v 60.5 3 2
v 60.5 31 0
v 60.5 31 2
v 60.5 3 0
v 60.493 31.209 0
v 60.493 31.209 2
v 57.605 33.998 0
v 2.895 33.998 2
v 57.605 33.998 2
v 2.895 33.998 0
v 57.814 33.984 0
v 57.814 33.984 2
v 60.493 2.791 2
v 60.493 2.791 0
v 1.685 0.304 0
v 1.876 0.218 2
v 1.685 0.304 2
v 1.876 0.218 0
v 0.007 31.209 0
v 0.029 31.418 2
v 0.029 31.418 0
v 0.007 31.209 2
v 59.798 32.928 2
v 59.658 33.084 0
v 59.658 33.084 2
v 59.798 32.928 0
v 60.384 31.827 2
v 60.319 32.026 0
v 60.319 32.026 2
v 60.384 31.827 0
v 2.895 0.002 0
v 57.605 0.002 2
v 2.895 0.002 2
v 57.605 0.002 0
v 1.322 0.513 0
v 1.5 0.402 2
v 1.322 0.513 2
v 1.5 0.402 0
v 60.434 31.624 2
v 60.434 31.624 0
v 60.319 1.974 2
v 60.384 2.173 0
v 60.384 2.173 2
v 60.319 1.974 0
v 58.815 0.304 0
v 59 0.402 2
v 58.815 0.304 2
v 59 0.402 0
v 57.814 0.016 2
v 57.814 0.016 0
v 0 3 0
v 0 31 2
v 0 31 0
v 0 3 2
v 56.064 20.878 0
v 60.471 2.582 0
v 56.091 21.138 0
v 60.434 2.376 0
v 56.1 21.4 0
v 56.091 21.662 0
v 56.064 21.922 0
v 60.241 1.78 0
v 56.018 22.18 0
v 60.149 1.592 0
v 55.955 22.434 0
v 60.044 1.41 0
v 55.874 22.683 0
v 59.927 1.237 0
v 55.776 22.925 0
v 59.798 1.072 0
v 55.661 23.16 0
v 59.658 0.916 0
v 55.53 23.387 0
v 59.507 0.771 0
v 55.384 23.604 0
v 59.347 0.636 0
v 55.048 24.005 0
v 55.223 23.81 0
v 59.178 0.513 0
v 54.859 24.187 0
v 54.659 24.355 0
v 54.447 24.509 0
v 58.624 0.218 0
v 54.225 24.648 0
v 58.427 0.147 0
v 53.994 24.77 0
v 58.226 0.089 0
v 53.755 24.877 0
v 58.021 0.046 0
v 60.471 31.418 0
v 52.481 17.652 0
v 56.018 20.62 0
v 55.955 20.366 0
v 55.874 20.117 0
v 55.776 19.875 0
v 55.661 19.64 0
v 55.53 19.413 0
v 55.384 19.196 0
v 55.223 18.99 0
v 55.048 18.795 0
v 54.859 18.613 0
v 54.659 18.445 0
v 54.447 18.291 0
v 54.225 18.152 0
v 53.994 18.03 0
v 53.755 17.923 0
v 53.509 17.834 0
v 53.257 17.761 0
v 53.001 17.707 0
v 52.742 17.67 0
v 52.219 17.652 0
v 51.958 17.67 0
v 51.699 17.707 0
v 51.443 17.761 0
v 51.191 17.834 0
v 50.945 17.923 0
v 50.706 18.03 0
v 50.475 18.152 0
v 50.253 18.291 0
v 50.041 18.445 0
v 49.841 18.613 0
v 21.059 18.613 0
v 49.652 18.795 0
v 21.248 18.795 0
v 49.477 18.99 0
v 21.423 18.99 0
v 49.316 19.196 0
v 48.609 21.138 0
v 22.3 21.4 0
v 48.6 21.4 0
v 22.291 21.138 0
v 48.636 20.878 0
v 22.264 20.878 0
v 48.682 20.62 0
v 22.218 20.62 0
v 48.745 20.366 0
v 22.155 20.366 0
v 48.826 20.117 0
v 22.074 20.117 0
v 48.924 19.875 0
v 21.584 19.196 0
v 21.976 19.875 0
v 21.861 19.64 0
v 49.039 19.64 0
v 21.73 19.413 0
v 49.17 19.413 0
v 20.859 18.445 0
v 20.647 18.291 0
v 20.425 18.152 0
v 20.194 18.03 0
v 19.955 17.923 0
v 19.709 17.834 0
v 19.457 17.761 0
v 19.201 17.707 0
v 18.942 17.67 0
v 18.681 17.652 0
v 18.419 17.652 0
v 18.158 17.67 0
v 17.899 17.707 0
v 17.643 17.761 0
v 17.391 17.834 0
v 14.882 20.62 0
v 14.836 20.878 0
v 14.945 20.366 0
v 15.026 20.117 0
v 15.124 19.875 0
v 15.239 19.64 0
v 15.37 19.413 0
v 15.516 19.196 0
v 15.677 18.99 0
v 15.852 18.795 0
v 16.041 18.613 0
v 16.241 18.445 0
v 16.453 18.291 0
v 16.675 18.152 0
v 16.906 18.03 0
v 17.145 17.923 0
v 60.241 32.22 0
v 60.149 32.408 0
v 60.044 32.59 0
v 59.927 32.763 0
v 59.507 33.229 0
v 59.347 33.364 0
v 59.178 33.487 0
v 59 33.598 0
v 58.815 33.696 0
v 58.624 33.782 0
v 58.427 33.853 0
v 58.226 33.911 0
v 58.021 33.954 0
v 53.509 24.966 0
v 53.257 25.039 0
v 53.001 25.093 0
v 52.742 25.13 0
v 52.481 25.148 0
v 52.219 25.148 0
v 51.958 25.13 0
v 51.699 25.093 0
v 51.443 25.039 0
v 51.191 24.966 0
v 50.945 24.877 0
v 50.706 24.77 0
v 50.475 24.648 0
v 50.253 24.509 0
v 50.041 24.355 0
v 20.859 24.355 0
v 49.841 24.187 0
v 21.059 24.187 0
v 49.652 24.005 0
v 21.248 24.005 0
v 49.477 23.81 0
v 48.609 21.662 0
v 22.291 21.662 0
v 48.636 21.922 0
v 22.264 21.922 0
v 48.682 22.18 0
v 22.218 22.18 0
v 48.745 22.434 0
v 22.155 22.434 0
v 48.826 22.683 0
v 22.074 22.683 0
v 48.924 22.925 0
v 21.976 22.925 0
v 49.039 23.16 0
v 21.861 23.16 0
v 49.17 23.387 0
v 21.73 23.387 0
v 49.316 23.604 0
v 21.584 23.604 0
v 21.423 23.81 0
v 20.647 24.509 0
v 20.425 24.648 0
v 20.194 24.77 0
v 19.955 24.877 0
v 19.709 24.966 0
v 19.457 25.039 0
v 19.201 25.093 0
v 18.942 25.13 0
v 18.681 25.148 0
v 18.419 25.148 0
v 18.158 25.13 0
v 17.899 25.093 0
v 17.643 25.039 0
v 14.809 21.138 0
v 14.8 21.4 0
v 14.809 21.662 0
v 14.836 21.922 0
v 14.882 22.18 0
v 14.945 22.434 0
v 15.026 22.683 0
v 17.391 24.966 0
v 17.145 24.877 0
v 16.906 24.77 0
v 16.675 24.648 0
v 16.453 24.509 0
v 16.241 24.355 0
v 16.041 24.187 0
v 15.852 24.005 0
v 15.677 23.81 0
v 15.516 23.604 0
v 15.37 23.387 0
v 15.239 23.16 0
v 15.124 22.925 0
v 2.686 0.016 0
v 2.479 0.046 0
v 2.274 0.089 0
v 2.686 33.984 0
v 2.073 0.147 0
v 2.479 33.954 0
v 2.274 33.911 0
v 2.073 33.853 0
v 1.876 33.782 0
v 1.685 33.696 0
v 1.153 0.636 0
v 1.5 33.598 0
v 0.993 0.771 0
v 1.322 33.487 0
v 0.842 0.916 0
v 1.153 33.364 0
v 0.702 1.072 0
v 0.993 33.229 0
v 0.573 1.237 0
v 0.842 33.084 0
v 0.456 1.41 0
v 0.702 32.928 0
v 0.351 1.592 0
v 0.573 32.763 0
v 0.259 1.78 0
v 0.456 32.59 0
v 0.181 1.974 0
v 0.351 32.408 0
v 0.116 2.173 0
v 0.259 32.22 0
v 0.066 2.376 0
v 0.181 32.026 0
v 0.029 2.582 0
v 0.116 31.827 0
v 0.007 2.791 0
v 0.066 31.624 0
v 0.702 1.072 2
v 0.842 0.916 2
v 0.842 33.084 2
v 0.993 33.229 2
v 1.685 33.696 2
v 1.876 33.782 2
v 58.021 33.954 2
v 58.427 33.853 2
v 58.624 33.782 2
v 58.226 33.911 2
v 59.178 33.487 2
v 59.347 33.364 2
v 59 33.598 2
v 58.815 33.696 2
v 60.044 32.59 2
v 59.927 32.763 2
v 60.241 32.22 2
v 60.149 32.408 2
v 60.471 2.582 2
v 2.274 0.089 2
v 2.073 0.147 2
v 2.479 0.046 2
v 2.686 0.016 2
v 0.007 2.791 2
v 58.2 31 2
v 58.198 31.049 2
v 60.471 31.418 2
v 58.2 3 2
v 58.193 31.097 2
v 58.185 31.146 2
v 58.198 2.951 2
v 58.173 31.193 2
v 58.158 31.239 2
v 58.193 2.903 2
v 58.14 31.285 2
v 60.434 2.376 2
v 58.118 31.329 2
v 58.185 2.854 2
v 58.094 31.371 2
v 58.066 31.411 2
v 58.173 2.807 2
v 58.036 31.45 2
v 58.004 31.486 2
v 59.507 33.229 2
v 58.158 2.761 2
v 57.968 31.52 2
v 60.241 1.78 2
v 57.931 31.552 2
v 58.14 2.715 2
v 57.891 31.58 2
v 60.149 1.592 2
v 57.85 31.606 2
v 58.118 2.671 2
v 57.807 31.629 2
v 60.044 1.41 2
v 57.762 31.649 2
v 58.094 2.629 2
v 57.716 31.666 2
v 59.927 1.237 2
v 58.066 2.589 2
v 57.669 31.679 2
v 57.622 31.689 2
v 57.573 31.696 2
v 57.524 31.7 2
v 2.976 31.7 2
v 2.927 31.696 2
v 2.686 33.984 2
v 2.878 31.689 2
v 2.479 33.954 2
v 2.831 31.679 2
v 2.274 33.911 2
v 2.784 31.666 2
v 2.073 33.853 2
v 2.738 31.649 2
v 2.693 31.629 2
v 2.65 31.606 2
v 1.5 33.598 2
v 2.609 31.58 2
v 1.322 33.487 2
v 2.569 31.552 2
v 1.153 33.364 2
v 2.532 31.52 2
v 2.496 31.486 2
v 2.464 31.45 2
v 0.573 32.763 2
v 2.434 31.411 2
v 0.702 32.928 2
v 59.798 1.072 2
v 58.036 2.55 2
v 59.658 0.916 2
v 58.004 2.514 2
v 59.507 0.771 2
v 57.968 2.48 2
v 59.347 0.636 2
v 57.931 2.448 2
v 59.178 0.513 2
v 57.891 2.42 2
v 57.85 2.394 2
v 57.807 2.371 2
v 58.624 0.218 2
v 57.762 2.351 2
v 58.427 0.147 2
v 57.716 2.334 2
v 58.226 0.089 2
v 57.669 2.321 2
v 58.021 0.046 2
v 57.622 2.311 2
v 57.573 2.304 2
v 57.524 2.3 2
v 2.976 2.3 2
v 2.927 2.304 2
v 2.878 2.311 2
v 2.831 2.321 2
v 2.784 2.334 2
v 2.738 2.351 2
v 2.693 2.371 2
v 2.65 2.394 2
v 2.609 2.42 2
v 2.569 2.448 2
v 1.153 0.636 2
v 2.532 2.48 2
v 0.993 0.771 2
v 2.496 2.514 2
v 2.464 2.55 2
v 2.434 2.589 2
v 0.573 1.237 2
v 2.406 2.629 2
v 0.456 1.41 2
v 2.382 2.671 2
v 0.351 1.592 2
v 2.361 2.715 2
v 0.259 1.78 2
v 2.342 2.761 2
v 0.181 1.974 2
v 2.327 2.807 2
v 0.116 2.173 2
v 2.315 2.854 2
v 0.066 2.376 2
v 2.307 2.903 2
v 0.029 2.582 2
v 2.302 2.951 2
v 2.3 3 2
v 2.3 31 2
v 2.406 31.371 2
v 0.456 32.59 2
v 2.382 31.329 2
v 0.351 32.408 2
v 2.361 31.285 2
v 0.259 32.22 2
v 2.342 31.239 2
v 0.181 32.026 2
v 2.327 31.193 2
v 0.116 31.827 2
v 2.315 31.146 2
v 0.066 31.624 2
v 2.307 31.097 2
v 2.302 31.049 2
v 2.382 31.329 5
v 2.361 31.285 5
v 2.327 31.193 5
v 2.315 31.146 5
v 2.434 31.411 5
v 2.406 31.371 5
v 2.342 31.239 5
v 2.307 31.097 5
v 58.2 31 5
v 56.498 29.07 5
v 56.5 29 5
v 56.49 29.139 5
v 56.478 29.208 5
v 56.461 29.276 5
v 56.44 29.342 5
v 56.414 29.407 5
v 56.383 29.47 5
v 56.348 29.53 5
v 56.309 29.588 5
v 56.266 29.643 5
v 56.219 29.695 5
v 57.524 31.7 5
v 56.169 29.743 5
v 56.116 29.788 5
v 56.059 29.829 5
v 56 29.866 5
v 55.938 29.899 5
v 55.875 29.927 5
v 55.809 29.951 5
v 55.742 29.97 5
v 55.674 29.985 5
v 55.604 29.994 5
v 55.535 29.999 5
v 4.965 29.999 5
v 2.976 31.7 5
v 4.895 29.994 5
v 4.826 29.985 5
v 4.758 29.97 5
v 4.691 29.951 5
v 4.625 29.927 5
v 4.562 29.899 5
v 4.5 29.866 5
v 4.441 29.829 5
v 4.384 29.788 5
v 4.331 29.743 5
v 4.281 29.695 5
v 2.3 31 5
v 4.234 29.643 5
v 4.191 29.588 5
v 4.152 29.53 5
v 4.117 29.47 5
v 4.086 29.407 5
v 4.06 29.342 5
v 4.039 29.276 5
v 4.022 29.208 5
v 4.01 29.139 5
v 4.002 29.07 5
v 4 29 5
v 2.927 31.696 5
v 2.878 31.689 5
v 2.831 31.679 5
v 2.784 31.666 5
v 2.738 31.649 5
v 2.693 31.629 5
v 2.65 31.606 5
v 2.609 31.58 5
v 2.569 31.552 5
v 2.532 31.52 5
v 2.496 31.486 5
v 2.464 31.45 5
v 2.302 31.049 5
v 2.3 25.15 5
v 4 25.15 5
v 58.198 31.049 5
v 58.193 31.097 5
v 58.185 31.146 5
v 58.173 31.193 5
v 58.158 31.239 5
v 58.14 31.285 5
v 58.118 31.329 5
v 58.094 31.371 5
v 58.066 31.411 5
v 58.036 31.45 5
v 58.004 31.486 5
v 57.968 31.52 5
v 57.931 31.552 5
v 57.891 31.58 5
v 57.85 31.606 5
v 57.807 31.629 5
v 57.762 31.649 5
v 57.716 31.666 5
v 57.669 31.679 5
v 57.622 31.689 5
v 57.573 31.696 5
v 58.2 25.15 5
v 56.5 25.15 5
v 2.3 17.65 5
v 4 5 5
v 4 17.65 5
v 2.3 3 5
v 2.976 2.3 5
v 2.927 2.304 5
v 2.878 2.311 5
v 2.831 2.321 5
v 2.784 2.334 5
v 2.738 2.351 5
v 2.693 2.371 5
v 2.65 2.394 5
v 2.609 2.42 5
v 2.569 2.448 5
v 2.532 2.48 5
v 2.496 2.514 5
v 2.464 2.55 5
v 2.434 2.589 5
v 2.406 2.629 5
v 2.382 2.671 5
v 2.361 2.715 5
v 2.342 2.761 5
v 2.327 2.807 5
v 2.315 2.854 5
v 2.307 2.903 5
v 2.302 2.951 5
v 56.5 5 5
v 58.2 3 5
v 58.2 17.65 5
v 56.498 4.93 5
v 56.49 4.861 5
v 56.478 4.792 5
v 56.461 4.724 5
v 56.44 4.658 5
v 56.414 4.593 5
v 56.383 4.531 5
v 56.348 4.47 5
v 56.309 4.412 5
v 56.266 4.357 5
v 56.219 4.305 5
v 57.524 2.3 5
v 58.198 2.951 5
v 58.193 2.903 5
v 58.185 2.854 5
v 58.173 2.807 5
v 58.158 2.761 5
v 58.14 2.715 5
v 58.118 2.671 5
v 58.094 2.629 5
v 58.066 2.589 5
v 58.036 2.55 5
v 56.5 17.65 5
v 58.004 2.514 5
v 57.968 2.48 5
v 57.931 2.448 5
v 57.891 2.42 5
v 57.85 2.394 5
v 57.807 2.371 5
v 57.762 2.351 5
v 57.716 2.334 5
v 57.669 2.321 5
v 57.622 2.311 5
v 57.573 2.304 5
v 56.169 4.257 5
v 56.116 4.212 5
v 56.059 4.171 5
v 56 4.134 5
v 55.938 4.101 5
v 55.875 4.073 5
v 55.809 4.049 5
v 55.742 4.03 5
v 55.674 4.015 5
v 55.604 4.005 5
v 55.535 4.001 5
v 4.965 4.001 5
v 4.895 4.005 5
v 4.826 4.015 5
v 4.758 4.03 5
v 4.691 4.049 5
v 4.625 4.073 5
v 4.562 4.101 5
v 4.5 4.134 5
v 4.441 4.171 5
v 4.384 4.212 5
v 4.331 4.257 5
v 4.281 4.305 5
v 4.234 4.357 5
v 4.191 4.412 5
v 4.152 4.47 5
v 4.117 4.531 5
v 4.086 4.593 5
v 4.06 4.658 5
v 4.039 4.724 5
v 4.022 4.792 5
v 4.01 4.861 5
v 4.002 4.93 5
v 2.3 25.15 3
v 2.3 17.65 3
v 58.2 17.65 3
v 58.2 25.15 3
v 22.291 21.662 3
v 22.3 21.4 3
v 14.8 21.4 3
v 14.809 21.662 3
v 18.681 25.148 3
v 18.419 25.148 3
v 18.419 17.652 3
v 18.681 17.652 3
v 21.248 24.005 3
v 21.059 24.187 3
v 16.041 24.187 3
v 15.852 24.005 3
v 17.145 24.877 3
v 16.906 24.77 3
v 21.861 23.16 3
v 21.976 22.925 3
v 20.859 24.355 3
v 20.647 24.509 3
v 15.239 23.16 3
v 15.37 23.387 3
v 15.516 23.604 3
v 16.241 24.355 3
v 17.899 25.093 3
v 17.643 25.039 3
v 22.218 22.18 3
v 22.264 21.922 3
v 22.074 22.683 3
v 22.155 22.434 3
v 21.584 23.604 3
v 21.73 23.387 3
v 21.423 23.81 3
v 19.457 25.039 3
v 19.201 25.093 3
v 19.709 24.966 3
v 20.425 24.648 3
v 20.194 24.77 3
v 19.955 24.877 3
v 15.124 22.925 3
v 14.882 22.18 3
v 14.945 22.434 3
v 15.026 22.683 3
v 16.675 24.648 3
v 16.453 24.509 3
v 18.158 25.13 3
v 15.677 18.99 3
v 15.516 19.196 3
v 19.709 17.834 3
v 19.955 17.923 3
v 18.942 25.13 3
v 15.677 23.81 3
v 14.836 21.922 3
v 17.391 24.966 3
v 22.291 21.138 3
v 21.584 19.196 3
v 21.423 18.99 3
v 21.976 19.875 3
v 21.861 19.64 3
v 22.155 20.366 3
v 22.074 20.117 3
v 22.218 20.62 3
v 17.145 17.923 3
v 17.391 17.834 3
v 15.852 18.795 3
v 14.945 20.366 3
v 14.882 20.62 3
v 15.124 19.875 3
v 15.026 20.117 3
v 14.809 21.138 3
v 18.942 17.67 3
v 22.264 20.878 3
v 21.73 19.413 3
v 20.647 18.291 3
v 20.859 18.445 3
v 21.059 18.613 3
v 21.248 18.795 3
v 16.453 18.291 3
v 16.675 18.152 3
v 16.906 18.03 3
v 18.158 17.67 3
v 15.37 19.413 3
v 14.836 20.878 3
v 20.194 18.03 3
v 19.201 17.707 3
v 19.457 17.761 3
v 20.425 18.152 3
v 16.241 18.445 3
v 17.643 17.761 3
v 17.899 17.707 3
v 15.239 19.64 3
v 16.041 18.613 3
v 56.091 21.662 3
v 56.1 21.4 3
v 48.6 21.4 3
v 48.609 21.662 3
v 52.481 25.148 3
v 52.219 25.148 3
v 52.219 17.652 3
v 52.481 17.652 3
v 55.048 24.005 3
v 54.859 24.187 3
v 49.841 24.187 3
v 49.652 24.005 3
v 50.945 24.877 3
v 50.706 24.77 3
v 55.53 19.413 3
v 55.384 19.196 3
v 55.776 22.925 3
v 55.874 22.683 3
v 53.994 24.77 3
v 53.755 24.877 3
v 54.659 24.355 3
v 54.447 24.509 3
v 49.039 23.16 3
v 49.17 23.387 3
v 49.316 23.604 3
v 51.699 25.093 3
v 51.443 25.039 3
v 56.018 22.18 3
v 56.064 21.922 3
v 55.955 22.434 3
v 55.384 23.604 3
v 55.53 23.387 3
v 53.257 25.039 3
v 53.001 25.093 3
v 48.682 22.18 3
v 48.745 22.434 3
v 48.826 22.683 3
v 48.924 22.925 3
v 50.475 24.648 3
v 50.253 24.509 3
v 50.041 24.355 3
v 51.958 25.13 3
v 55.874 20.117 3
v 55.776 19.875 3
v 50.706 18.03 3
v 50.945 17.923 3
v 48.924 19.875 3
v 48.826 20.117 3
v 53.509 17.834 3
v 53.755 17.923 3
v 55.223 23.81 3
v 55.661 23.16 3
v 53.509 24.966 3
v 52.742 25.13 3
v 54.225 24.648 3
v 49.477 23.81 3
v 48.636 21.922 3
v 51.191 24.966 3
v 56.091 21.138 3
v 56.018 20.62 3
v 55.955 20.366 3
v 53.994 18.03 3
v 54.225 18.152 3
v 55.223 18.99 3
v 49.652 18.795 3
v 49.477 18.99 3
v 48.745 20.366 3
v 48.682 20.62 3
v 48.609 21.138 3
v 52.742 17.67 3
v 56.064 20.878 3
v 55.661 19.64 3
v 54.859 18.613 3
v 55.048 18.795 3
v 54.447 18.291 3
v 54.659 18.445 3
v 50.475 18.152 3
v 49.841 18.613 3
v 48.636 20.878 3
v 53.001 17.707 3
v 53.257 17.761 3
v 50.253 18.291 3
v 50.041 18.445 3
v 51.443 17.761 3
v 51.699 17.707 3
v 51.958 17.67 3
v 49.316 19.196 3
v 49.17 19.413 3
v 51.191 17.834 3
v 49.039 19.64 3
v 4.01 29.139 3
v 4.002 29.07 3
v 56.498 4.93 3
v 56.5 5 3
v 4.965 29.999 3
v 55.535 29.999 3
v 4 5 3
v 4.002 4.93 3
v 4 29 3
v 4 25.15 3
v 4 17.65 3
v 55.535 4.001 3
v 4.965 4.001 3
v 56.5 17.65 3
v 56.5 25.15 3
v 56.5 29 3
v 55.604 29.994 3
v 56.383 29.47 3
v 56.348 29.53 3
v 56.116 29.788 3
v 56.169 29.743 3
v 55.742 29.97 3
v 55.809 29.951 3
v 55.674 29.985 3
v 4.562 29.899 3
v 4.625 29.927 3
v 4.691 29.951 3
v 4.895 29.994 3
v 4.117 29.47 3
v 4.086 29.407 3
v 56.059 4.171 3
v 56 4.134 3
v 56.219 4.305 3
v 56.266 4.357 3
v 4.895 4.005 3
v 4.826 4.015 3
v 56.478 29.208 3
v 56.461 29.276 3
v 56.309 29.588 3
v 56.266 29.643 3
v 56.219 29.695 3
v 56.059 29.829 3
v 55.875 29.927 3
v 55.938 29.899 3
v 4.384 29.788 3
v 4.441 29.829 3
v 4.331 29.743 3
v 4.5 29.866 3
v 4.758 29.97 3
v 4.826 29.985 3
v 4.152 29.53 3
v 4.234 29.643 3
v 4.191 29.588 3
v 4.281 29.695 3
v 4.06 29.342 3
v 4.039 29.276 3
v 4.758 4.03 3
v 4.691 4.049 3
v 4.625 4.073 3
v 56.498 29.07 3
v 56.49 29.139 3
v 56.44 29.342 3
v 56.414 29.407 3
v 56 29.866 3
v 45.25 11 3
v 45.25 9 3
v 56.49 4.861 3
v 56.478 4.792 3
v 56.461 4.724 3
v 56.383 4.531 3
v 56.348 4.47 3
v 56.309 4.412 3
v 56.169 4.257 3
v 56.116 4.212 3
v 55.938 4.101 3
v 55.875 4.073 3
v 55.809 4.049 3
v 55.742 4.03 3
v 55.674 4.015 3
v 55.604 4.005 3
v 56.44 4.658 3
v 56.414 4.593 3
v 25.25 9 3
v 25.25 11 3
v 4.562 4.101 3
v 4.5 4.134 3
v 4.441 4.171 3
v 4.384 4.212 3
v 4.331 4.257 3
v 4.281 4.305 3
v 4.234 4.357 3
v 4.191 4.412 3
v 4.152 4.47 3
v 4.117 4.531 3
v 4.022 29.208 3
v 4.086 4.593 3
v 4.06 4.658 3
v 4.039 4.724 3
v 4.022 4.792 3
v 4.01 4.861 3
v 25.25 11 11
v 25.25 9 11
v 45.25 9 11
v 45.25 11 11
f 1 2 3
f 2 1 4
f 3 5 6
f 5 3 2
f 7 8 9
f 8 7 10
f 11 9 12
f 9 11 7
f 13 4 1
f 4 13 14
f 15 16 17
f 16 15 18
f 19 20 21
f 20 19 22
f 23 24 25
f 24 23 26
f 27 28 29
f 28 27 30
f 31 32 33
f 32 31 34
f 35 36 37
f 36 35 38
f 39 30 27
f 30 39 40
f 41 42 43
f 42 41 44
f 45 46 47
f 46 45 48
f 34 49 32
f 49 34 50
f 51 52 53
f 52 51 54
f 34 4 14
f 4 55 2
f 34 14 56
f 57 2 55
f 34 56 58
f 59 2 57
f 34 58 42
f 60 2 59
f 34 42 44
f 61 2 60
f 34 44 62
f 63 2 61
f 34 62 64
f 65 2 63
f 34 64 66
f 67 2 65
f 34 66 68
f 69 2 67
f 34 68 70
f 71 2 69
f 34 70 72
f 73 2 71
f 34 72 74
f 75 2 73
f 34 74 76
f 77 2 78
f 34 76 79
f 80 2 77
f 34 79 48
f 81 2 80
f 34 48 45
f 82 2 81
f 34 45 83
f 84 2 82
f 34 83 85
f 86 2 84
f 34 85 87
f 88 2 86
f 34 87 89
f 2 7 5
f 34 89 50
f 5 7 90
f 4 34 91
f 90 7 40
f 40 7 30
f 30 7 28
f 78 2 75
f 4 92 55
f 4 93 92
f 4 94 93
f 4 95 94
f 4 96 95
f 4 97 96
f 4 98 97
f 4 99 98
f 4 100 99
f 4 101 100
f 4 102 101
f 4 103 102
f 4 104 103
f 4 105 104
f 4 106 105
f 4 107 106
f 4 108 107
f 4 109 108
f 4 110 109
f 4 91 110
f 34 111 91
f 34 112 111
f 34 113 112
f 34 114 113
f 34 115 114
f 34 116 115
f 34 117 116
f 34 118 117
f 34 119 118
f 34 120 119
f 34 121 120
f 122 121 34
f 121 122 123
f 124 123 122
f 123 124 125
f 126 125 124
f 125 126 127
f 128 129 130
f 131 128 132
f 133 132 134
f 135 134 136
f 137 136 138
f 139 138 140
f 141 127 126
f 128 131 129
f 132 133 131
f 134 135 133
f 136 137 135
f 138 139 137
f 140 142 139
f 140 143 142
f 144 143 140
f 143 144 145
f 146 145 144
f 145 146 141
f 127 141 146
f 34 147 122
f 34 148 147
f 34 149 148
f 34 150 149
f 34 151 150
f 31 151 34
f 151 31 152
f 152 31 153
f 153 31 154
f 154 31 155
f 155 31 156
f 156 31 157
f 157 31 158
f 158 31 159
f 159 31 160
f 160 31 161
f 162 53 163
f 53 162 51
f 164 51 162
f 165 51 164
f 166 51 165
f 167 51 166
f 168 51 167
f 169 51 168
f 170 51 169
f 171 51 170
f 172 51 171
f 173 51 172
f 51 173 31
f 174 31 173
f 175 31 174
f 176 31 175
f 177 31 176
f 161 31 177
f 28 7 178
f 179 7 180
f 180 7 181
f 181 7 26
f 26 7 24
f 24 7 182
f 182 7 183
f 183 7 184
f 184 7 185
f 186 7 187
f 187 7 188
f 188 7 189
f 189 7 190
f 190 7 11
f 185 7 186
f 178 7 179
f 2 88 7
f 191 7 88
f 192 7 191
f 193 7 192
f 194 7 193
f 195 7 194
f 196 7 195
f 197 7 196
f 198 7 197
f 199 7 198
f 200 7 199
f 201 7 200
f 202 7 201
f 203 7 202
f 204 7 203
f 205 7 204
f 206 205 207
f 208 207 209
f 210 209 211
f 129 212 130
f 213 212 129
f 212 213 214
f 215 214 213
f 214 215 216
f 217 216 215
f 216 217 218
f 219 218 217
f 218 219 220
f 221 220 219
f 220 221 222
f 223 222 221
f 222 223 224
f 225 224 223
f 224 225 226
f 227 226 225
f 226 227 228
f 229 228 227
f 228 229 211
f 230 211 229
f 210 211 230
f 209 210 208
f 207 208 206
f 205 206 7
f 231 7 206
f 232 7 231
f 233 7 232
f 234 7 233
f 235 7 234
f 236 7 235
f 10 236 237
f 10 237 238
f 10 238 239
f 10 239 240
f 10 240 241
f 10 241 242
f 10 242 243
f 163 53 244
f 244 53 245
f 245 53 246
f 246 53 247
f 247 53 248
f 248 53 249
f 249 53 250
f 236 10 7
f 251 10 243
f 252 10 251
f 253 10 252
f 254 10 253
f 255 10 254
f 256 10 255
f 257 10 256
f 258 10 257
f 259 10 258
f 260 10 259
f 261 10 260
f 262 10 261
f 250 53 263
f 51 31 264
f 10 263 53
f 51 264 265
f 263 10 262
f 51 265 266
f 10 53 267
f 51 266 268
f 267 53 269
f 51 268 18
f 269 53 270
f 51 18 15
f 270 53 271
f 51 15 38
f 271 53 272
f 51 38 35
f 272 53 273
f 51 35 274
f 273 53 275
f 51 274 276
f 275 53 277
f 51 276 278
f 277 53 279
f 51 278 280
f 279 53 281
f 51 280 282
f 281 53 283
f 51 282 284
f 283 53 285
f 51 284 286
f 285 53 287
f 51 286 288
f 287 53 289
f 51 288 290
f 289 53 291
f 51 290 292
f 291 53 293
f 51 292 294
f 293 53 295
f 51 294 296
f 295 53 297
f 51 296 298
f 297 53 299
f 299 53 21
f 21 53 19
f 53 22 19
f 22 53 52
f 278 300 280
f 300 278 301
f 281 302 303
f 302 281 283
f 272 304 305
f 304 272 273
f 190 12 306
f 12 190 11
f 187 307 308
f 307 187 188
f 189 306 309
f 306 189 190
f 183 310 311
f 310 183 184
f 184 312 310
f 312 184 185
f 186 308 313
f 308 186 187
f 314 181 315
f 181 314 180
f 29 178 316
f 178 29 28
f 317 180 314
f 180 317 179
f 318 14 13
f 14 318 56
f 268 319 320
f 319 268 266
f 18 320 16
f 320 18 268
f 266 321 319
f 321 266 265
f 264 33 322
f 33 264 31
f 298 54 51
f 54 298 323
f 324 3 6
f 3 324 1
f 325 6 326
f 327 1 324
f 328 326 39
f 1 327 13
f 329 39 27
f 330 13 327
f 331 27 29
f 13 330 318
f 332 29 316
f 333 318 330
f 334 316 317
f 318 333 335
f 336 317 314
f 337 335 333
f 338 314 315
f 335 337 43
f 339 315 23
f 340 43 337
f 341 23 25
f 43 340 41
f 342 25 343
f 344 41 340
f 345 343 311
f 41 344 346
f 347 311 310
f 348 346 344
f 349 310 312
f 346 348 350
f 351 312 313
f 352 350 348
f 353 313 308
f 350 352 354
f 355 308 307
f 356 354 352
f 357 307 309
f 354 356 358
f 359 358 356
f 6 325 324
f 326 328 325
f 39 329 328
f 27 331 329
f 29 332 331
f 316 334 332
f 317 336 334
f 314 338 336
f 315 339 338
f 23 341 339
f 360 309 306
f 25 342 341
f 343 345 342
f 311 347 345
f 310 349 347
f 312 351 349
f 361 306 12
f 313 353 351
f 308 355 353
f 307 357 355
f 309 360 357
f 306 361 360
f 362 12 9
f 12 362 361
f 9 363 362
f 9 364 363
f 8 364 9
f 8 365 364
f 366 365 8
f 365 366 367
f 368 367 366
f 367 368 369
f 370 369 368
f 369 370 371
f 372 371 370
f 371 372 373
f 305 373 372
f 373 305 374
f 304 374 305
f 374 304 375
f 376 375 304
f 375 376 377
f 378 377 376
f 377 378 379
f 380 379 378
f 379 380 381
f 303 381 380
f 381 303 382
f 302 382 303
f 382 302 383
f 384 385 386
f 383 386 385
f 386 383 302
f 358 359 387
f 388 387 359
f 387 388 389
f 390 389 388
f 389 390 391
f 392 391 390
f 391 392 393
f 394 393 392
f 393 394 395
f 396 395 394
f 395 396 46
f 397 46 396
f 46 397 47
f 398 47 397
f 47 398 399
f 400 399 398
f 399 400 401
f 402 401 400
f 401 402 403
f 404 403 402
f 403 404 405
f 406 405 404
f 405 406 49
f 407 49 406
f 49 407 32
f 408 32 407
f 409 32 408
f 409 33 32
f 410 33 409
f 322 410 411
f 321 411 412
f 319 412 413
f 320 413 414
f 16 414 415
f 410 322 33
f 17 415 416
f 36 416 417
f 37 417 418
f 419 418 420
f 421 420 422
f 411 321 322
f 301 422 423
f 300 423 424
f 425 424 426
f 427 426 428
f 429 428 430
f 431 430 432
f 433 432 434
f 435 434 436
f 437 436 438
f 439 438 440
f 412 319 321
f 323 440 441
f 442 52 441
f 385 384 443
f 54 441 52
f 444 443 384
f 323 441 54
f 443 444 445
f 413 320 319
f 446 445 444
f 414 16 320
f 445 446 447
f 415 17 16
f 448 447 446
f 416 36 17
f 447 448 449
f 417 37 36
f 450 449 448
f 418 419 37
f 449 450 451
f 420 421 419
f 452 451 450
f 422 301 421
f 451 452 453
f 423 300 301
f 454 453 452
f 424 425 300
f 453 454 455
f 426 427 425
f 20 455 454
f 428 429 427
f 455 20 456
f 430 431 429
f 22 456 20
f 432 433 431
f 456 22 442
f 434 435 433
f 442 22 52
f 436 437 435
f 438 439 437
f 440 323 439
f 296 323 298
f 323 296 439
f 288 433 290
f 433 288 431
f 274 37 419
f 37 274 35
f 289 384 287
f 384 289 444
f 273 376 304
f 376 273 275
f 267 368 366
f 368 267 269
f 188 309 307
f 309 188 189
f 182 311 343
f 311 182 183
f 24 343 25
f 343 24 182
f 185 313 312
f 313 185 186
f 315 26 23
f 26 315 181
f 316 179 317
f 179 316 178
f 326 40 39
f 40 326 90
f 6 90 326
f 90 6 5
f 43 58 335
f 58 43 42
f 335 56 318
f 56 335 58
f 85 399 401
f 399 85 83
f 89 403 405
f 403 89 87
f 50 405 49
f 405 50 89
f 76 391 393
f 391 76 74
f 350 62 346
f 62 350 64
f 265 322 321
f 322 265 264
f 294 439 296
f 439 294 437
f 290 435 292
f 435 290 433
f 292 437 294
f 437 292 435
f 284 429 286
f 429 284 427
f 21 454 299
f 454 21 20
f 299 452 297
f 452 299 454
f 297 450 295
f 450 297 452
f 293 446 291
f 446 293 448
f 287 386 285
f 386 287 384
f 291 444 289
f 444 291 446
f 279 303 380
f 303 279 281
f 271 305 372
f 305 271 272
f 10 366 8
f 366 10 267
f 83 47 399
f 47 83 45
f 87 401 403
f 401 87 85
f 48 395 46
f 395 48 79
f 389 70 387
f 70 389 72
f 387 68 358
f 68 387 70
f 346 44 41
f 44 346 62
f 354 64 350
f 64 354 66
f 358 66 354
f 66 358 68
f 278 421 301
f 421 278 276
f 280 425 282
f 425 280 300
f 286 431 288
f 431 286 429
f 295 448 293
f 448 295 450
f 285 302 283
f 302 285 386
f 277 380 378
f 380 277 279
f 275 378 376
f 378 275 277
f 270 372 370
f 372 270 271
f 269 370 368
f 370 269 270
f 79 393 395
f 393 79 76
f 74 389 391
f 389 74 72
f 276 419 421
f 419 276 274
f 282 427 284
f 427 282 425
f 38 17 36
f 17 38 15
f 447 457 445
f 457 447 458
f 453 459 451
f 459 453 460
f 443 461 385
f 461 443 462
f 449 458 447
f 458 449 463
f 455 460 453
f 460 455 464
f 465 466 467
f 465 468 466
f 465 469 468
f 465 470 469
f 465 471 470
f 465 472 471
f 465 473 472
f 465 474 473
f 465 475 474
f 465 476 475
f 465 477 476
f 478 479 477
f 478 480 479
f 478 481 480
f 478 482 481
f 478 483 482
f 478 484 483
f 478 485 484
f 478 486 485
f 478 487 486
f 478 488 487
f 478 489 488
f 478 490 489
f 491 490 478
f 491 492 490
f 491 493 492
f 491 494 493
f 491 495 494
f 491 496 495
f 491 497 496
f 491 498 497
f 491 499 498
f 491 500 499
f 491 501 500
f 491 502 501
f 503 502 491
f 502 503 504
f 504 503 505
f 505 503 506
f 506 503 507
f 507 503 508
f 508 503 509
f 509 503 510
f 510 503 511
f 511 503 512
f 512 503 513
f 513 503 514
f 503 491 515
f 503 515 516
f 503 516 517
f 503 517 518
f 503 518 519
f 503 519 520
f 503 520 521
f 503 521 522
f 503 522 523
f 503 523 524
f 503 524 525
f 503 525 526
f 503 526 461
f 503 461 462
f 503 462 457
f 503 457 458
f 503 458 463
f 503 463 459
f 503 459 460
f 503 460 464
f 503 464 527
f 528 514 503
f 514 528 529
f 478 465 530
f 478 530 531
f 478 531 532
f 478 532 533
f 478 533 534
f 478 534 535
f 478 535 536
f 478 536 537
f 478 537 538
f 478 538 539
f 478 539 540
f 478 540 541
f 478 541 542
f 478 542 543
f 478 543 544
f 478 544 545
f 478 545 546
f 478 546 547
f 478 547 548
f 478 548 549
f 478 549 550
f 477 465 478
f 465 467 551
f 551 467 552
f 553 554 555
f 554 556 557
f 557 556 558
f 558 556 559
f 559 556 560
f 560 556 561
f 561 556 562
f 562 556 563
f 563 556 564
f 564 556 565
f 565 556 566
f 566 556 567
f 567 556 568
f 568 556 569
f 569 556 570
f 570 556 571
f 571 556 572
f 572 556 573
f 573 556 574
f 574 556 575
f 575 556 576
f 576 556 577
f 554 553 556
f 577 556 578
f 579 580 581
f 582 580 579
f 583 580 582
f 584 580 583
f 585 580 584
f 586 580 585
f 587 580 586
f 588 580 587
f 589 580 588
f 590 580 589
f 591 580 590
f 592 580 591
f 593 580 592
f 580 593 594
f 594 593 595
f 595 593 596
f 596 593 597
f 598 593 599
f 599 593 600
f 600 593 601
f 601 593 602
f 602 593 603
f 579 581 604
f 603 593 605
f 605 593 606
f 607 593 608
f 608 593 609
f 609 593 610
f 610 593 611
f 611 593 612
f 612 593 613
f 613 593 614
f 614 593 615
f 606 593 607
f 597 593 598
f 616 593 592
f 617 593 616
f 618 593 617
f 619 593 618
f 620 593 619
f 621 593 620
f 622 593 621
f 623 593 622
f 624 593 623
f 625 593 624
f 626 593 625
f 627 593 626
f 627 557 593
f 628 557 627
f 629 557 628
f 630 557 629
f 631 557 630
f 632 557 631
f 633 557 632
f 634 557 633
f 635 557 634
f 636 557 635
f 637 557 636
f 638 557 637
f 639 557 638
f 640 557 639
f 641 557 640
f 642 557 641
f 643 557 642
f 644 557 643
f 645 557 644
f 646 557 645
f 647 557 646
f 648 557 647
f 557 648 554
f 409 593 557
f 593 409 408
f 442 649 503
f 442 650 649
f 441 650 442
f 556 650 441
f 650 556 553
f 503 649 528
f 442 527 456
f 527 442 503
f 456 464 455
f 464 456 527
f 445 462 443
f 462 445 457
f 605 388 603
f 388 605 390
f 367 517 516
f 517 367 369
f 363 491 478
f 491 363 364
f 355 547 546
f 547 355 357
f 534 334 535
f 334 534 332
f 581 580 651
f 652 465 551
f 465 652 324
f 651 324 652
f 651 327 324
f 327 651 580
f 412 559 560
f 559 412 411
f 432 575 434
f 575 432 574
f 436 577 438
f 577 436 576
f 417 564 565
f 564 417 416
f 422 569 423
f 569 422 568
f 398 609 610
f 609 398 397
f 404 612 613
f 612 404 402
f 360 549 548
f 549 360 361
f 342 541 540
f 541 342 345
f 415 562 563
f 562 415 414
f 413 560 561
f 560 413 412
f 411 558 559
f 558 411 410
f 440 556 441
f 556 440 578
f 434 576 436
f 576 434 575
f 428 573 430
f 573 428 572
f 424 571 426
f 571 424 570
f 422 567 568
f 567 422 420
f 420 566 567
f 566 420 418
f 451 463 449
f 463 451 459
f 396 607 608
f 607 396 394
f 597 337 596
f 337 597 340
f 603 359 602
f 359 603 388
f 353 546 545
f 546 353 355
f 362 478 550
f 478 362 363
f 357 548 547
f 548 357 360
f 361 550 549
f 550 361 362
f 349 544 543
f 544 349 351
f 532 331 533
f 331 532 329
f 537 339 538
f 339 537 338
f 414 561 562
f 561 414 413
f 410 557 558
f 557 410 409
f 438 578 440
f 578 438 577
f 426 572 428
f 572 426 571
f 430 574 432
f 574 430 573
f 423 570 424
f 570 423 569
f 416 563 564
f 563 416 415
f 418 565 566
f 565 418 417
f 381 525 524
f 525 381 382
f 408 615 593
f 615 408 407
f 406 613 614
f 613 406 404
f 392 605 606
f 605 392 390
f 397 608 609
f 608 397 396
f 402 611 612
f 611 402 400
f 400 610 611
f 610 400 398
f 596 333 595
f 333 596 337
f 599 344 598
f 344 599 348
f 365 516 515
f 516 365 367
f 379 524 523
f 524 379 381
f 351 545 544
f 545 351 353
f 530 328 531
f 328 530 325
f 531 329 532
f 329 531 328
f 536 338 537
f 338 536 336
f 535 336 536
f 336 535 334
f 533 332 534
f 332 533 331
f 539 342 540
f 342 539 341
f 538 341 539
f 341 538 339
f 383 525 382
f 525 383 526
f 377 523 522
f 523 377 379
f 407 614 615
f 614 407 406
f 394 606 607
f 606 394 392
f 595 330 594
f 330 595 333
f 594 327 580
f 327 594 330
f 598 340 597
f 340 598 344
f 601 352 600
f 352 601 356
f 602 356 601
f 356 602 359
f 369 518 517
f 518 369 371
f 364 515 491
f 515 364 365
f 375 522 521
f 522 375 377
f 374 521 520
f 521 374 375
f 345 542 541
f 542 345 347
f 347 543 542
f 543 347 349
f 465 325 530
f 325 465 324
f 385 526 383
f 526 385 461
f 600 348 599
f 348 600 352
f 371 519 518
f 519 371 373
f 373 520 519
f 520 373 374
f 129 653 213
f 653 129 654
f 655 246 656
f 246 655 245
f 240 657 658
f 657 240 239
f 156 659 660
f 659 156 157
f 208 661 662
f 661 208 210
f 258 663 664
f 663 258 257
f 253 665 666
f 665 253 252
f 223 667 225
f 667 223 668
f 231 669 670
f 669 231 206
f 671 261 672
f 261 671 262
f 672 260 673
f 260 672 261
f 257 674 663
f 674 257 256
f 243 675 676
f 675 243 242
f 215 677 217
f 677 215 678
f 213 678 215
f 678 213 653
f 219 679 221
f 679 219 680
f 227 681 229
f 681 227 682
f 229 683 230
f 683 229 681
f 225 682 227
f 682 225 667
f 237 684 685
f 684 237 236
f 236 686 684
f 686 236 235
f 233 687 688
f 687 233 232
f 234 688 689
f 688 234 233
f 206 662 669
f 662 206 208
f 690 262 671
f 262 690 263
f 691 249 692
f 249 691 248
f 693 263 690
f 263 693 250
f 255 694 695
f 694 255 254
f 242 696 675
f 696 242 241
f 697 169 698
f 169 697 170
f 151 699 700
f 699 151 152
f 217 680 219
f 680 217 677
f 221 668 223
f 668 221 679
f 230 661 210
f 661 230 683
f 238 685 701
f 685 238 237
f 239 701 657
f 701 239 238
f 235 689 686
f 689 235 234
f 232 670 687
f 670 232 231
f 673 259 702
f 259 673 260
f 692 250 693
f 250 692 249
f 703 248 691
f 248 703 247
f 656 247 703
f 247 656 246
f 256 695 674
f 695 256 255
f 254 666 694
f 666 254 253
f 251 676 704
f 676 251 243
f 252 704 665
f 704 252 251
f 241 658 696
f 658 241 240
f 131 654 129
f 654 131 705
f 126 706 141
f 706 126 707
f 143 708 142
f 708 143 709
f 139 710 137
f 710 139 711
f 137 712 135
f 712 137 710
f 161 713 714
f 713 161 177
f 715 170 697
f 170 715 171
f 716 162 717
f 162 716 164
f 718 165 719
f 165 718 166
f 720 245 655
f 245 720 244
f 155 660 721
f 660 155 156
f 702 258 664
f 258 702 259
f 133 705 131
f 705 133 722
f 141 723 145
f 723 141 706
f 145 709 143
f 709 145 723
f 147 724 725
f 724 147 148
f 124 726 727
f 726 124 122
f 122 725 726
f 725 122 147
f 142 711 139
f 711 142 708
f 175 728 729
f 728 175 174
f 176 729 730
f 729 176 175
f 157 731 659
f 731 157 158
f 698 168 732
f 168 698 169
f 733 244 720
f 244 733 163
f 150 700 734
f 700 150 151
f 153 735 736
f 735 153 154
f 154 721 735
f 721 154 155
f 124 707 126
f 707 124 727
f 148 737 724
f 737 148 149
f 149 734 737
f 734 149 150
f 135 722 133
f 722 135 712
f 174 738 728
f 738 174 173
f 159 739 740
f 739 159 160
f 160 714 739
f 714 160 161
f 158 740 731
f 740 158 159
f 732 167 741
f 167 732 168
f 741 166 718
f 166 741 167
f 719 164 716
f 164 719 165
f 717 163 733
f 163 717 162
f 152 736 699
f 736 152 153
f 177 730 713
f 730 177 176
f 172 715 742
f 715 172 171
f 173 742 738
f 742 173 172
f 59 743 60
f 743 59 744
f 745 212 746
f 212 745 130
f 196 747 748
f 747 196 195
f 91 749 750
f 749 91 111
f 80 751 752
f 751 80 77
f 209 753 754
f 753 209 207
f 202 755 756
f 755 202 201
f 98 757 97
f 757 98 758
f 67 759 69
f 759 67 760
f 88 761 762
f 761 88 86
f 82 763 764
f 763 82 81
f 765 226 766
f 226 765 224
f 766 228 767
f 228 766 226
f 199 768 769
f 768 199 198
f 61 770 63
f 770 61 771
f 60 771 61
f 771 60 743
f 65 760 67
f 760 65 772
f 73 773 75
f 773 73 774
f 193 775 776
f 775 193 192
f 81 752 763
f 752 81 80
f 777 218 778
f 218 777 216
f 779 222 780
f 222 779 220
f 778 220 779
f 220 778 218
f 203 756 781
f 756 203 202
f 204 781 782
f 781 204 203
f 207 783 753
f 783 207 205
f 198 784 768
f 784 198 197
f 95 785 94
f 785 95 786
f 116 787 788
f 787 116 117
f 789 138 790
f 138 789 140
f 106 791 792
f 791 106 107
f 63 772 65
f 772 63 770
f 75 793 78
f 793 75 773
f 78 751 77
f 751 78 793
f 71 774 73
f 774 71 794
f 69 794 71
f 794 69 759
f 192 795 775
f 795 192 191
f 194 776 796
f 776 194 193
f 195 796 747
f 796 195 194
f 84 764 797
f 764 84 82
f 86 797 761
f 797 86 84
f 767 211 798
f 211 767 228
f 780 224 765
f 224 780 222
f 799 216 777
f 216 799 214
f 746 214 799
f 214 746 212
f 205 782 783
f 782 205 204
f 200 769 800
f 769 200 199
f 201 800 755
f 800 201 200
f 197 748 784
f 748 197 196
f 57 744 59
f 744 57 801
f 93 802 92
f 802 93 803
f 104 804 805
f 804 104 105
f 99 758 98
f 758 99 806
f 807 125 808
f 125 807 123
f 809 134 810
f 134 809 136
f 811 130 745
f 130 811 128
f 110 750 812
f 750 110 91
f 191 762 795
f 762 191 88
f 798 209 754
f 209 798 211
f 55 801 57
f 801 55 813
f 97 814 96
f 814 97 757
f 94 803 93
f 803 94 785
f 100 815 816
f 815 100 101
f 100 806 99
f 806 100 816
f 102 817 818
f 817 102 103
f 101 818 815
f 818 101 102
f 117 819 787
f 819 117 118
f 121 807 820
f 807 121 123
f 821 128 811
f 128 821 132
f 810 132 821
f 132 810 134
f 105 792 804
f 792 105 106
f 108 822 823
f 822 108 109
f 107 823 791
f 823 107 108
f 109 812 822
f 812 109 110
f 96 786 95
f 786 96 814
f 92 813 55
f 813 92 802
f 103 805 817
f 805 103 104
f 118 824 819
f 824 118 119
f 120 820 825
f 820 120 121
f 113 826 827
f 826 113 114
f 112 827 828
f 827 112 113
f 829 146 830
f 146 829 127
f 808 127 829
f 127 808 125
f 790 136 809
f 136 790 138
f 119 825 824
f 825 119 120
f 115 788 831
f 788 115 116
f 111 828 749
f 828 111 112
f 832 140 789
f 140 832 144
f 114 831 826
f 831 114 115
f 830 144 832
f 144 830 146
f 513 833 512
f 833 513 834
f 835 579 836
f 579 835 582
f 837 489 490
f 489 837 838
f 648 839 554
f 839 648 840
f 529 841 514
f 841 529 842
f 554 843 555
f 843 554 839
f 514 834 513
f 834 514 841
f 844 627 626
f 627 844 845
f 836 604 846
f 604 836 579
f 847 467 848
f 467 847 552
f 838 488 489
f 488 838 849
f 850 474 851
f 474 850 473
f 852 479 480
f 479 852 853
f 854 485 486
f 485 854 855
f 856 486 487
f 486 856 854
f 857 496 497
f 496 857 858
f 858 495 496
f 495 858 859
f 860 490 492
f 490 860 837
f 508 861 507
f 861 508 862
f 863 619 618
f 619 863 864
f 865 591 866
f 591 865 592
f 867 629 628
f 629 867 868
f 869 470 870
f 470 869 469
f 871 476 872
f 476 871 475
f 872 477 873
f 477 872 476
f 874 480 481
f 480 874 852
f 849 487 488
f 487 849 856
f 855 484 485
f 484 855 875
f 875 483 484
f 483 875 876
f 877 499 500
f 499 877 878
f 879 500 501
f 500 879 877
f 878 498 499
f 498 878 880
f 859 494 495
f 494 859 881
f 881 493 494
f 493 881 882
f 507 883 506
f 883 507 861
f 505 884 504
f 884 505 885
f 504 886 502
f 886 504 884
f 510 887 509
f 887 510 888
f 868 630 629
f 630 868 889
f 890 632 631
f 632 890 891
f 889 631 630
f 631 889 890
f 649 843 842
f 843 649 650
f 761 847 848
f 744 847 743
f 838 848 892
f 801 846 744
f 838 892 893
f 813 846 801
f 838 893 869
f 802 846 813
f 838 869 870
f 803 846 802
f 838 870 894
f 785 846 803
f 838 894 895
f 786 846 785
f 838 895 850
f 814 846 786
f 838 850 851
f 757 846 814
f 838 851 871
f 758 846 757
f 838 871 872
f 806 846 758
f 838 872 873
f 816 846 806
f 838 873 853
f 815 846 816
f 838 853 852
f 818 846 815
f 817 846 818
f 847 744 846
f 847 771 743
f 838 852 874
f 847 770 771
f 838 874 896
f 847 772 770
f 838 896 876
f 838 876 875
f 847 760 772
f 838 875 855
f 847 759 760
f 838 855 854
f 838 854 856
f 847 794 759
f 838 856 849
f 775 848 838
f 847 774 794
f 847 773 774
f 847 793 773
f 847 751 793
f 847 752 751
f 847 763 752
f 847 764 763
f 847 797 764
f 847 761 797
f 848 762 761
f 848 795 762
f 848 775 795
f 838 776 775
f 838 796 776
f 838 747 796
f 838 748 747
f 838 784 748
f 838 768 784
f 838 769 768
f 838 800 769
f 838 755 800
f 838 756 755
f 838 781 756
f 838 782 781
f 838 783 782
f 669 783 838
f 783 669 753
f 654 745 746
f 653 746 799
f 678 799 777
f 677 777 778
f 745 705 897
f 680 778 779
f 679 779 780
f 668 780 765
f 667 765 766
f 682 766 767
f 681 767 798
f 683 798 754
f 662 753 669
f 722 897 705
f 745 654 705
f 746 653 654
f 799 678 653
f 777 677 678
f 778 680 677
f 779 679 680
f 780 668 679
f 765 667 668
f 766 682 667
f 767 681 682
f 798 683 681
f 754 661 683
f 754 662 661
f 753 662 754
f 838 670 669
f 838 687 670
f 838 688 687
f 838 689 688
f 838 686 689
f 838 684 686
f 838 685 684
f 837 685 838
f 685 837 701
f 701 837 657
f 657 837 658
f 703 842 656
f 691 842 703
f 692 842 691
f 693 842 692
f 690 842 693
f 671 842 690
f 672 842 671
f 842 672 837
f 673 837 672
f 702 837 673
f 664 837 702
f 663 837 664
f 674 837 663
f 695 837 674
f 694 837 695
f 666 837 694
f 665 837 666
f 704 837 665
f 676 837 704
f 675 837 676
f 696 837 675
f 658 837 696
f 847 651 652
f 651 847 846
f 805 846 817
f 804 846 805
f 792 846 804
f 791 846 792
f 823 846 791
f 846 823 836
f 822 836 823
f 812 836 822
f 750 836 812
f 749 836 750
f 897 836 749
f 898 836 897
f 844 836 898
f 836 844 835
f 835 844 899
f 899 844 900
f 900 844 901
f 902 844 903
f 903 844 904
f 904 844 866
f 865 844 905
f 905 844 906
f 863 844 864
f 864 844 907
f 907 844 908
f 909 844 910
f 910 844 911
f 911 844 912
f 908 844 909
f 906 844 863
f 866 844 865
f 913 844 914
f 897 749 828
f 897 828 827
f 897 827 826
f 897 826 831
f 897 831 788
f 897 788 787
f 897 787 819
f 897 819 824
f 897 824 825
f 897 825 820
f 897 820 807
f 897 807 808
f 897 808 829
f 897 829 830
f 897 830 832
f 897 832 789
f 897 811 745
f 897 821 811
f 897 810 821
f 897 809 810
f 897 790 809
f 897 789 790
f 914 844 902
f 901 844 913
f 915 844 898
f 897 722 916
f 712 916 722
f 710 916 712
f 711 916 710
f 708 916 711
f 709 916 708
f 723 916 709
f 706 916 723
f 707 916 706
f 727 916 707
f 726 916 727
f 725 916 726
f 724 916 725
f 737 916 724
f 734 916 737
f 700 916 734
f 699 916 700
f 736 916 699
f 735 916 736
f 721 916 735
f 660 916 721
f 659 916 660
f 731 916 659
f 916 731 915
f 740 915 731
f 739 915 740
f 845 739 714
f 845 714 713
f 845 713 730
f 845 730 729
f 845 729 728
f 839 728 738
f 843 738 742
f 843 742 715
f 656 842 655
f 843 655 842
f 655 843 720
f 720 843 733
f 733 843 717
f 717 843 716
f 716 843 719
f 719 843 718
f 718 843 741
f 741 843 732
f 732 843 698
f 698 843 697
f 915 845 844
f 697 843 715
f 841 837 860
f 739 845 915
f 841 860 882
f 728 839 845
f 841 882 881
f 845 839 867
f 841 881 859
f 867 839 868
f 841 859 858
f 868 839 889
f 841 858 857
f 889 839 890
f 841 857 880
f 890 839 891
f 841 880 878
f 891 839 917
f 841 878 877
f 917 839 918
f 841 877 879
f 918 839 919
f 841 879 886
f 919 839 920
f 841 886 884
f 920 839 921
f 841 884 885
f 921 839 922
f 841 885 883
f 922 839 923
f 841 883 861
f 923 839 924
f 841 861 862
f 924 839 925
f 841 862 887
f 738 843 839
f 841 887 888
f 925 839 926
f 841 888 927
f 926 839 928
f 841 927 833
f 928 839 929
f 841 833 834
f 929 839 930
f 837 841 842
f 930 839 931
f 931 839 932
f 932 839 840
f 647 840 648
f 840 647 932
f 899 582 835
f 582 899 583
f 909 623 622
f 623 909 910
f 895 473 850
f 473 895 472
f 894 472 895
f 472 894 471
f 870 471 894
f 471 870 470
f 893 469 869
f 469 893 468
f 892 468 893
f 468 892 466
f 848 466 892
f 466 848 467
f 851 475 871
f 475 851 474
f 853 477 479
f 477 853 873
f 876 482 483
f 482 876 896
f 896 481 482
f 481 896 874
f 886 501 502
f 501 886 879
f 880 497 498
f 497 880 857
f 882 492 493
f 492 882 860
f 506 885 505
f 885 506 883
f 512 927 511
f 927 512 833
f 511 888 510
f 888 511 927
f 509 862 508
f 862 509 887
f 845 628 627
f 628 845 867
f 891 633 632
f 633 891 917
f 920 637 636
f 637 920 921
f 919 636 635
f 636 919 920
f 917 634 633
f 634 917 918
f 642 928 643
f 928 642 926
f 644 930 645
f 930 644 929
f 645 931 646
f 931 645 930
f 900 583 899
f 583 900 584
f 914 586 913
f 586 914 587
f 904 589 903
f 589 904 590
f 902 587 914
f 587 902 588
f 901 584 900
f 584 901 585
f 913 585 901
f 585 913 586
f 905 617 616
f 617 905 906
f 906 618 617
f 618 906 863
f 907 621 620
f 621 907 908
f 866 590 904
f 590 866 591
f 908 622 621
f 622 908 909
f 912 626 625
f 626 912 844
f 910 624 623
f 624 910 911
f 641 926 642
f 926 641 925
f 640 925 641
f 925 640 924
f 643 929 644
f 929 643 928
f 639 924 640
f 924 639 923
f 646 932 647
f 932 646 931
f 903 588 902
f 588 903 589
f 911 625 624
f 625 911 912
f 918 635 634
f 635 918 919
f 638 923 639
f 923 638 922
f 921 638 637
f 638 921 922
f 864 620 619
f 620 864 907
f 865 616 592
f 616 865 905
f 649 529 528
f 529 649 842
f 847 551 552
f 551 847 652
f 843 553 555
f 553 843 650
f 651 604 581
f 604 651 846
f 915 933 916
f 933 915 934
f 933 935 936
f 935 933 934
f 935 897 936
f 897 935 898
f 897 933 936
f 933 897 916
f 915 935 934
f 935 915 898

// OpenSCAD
// Simple Lid for the Iridium Mini Radio Beacon Cover

$fn=90; // fragments
wall = 2.0; // cover wall thickness
thickness = 2.0; // lid end thickness
internal_width = 56.5; // internal width (X) of the cover
internal_depth = 30.0; // internal depth (Y) of the cover
gap = 0.3; // clearance gap (per side)
insert_height = 3.0; // extra height for the lid insert
internal_corner_radius = 1.0; // radius of the internal corner cylinder

sma_r = 3.75; // radius of the hole for the sma connector
sma_x_offset = -11.7; // X offset of the hole for the sma connector w.r.t. the X center of the void
sma_y_offset = 4.4; // y offset of the hole for the sma connector w.r.t. the Y center of the void
sma_wall_thickness = 3.0; // wall thickness around the SMA connectors

sma_2_x_offset = 22.1; // X offset of the hole for the second sma connector w.r.t. the X center of the void

battery_support_width = 20.0; // Width (X) of the battery support
battery_support_depth = 2.0; // Depth (Y) of the battery support
battery_support_insertion = 9.0; // Insertion height (Z) from cover lip
battery_support_x_offset = 5.0;
battery_support_y_offset = -7.0;

if (gap > internal_corner_radius) echo("Error! Gap cannot be greater than the internal corner radius!");

width = internal_width + (2 * wall); // lid external width (X)
depth = internal_depth + (2 * wall); // lid external depth (Y)

total_height = wall + insert_height; // total height of the lid

sma_x = (width / 2) + sma_x_offset; // x position of the sma connector
sma_y = (depth / 2) + sma_y_offset; // y position of the sma connector

sma_2_x = (width / 2) + sma_2_x_offset; // x position of the second sma connector

external_corner_radius = internal_corner_radius + wall; // external corner radius

module outer()
{
    translate([external_corner_radius, external_corner_radius, 0])
        minkowski() {
            cube([(width - (2 * external_corner_radius)), (depth - (2 * external_corner_radius)), (thickness / 2)]);
            cylinder(h=(thickness / 2), r=external_corner_radius);
        }
}

module inner()
// Thicker than required to avoid zero thickness joints
{
    translate([external_corner_radius, external_corner_radius, 0])
        minkowski() {
            cube([(width - (2 * external_corner_radius)), (depth - (2 * external_corner_radius)), (total_height / 2)]);
            cylinder(h=(total_height / 2), r=(internal_corner_radius - gap));
        }
}

module recess()
// Thicker than required to avoid zero thickness joints
{
    translate([(internal_corner_radius + wall + wall), (internal_corner_radius + wall + wall), sma_wall_thickness])
        minkowski() {
            cube([(width - (2 * (wall + wall + internal_corner_radius))), (depth - (2 * (wall + wall + internal_corner_radius))), (total_height / 2)]);
            cylinder(h=(total_height / 2), r=internal_corner_radius);
        }
}

module battery_support()
{
    translate([((width / 2) + battery_support_x_offset - (battery_support_width / 2)), ((depth / 2) + battery_support_y_offset - (battery_support_depth / 2)), 0]) {
        cube([battery_support_width, battery_support_depth, (battery_support_insertion + thickness)]);
    }
}

module lid()
{
    union() {
        outer();
        inner();
     }
}

module sma()
// Cylinder is taller than required to avoid zero thickness skins
{
    translate([sma_x, sma_y, -1]) {
        cylinder(h=(total_height + 2),r=sma_r);
    }
}

module sma_2()
// Cylinder is taller than required to avoid zero thickness skins
{
    translate([sma_2_x, sma_y, -1]) {
        cylinder(h=(total_height + 2),r=sma_r);
    }
}

module pcb_slot()
// Cube is taller amd wider than required to avoid zero thickness skins
{
    translate([0, (sma_y - sma_r), sma_wall_thickness]) {
        cube([width, (sma_r * 2), total_height]);
    }
}

module finished_lid()
{
    union() {
        difference() {
            lid();
            sma();
            sma_2();
            recess();
            pcb_slot();
        }
        battery_support();
    }
}

finished_lid();
